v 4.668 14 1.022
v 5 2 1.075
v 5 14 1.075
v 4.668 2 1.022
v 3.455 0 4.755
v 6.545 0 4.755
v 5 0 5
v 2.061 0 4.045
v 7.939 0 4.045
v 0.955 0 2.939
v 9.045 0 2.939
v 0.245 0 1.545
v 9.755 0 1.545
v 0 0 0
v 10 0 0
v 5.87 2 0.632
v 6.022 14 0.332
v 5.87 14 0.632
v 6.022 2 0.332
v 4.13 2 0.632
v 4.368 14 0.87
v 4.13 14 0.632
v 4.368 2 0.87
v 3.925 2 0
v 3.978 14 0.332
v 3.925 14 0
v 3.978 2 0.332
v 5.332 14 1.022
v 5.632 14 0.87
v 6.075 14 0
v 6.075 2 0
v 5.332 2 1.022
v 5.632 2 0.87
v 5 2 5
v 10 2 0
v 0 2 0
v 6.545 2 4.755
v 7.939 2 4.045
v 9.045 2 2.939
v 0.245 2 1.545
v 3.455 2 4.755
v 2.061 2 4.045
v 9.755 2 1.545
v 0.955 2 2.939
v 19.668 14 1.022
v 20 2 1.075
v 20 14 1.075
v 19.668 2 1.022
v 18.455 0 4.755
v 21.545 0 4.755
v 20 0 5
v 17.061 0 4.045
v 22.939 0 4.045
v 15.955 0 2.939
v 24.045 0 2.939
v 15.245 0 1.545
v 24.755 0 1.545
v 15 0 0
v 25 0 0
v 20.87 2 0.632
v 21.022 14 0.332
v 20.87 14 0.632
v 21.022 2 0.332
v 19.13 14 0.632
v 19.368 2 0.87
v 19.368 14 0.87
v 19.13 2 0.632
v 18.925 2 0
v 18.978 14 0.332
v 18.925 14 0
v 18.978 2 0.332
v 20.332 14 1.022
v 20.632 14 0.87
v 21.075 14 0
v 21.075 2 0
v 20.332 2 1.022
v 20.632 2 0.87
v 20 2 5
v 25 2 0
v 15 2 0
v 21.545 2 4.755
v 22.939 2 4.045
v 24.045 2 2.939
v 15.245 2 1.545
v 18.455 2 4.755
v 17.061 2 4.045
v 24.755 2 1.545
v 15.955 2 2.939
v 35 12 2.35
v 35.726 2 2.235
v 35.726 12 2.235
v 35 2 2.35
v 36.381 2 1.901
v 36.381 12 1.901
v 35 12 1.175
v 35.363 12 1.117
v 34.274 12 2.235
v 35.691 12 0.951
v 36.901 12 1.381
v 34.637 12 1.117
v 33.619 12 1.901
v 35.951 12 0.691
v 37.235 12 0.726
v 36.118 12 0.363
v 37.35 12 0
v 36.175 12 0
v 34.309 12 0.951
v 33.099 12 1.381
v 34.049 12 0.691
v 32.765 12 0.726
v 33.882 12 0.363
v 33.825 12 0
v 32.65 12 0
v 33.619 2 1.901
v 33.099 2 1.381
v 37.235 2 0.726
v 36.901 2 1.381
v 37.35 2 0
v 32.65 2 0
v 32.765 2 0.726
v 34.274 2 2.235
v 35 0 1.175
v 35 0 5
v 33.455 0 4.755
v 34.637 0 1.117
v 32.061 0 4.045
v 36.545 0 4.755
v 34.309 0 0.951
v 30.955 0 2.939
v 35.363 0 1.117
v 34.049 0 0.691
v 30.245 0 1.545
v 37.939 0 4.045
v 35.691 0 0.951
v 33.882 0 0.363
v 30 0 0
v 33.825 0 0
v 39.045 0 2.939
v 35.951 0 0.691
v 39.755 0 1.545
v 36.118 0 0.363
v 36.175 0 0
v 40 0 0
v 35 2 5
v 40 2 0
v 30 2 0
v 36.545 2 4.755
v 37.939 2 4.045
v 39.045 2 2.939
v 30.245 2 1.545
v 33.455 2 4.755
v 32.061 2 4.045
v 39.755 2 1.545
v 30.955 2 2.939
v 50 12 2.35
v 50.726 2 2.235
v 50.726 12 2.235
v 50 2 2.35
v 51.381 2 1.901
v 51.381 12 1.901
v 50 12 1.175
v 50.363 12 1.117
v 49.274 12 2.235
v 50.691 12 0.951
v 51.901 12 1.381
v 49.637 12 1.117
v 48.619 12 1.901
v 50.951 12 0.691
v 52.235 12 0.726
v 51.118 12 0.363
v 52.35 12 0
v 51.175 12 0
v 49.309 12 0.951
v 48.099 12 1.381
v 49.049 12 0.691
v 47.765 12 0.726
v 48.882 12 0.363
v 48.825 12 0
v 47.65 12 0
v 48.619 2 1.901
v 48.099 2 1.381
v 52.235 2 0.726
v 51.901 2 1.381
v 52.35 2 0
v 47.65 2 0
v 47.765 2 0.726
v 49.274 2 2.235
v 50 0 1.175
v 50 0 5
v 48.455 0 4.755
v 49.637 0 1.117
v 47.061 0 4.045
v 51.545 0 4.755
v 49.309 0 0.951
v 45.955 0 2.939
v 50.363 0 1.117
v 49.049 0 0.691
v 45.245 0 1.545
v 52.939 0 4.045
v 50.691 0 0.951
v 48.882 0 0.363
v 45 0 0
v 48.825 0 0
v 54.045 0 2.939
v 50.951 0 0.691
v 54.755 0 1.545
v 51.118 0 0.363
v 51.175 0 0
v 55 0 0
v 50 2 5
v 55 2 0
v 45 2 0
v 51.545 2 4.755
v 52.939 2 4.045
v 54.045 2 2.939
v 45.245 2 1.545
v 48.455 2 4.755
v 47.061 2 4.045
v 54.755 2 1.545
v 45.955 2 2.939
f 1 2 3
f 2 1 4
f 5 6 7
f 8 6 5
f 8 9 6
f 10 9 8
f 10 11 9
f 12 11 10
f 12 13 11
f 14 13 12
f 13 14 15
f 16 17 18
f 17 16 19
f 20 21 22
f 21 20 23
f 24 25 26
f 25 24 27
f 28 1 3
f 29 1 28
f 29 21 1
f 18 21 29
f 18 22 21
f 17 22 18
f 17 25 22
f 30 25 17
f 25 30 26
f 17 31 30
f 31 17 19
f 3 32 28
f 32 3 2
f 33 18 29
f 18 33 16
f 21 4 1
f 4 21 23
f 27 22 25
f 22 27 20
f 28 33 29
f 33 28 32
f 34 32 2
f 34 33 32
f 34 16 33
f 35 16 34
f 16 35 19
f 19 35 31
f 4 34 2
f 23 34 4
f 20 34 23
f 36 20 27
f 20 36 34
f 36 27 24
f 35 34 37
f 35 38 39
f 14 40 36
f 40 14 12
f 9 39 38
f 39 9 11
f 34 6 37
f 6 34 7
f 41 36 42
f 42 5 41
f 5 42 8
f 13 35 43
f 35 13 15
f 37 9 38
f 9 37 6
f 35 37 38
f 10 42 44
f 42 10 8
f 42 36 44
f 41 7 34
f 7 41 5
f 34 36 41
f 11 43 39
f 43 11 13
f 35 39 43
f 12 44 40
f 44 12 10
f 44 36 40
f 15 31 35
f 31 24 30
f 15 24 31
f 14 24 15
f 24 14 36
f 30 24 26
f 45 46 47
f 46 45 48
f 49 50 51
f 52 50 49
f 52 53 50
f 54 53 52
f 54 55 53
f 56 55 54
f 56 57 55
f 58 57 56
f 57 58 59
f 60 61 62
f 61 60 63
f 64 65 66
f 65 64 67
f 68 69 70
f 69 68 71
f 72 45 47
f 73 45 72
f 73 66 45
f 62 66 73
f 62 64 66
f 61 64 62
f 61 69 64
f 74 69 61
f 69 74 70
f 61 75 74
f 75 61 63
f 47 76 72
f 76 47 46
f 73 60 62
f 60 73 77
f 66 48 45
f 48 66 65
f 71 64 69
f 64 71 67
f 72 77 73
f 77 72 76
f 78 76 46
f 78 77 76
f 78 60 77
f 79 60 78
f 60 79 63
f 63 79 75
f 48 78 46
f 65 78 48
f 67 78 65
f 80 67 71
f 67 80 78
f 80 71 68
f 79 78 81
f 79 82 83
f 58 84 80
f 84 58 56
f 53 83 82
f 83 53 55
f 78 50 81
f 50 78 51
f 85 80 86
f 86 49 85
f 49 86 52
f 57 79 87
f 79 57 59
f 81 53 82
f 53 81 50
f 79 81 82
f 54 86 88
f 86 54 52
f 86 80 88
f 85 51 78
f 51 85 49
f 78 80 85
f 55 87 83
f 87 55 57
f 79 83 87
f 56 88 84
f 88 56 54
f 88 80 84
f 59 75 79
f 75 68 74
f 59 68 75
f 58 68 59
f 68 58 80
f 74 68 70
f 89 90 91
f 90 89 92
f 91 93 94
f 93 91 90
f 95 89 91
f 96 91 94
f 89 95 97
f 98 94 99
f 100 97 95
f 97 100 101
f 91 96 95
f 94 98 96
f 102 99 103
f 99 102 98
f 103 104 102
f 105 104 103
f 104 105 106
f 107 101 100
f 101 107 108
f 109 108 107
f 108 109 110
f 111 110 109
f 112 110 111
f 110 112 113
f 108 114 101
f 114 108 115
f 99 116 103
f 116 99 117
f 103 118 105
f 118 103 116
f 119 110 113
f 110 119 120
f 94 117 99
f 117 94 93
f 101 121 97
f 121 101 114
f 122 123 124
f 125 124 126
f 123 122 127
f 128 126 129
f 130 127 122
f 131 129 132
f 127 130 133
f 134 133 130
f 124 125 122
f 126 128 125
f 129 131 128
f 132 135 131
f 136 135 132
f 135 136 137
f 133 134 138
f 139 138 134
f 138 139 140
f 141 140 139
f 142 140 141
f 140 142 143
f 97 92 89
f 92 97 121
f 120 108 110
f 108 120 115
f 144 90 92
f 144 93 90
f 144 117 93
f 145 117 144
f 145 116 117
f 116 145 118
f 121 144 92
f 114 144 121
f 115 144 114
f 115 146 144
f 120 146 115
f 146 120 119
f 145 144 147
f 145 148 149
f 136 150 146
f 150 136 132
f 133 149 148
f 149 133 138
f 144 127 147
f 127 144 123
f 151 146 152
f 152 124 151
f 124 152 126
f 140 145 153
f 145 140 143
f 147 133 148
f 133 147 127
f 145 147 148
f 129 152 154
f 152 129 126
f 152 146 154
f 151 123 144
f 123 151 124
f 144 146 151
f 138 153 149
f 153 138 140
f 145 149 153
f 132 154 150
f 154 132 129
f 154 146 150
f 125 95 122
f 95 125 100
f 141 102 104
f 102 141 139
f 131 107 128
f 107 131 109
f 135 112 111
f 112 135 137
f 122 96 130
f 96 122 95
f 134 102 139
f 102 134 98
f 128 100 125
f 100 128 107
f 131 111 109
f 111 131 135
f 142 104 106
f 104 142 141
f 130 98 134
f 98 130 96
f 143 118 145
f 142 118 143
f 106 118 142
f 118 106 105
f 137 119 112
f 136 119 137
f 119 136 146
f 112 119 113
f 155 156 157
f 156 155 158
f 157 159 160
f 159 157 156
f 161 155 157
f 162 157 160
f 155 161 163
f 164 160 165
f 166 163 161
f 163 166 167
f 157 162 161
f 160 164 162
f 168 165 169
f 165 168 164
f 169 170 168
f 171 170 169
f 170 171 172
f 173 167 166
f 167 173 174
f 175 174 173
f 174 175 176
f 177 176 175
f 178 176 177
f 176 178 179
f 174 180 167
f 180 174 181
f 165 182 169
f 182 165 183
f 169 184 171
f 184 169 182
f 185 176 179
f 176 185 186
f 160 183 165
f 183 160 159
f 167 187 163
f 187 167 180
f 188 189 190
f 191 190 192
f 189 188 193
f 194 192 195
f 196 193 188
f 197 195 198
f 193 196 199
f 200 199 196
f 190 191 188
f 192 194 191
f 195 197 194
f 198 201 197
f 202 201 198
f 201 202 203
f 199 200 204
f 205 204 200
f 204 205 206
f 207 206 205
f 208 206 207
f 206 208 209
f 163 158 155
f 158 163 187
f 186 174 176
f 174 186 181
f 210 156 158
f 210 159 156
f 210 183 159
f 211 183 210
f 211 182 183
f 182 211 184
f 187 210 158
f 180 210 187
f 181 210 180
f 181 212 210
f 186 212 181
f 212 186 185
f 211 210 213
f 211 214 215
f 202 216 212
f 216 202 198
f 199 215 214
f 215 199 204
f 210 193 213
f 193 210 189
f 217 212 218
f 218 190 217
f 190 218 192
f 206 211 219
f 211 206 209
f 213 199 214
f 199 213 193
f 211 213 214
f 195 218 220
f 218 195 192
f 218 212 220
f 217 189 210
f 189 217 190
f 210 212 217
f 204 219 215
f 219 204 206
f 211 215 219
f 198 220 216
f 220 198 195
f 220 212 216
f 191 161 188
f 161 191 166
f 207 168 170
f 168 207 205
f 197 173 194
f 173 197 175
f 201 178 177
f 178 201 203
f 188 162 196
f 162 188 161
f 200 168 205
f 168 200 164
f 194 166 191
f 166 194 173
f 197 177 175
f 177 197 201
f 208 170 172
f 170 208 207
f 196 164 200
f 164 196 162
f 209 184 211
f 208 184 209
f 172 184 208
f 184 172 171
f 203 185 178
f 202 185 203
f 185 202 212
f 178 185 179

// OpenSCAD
$fn=20;
HeadHeight=2; // [1,1.5,2,2.5,3]
HeadDiameter=10; //[7:15]
SleeveLength=10; //[1:100]
SleeveOutterDiameter=4.7;//[5.00,5.08,6,7,8,9,10]
Play=0.1;// [0.0,0.1,0.2,0.3,0.4,0.5]

HeadRadius=HeadDiameter/2;
SleeveOutterRadius=SleeveOutterDiameter/2;
SleeveInnerRadius=(SleeveOutterRadius/2)-Play;

O1=HeadDiameter/2;
O2=HeadDiameter+10;
O3=(HeadDiameter*2)+15;
O4=(HeadDiameter*3)+20;

translate([O1,0,0]) core();
translate([O2,0,0]) core();
translate([O3,0,0]) outter();
translate([O4,0,0]) outter();

module core() {
	difference() {
		union() {
			rotate([-90,0,0]) cylinder(r=SleeveInnerRadius,h=SleeveLength+(HeadHeight*2));
			rotate([-90,0,0]) cylinder(r=HeadRadius,h=HeadHeight);
		}
		translate([-HeadRadius,0,-HeadRadius]) cube([HeadDiameter+1,SleeveLength+(HeadHeight*2)+1,HeadRadius]);
	}
}

module outter() {
	difference() {
		union() {
			rotate([-90,0,0]) cylinder(r=SleeveOutterRadius,h=SleeveLength+HeadHeight);
			rotate([-90,0,0]) cylinder(r=HeadRadius,h=HeadHeight);
		}
		rotate([-90,0,0]) cylinder(r=SleeveInnerRadius+Play,h=SleeveLength+HeadHeight);
		translate([-HeadRadius,0,-HeadRadius]) cube([HeadDiameter+1,SleeveLength+HeadHeight+1,HeadRadius]);
	}
}
